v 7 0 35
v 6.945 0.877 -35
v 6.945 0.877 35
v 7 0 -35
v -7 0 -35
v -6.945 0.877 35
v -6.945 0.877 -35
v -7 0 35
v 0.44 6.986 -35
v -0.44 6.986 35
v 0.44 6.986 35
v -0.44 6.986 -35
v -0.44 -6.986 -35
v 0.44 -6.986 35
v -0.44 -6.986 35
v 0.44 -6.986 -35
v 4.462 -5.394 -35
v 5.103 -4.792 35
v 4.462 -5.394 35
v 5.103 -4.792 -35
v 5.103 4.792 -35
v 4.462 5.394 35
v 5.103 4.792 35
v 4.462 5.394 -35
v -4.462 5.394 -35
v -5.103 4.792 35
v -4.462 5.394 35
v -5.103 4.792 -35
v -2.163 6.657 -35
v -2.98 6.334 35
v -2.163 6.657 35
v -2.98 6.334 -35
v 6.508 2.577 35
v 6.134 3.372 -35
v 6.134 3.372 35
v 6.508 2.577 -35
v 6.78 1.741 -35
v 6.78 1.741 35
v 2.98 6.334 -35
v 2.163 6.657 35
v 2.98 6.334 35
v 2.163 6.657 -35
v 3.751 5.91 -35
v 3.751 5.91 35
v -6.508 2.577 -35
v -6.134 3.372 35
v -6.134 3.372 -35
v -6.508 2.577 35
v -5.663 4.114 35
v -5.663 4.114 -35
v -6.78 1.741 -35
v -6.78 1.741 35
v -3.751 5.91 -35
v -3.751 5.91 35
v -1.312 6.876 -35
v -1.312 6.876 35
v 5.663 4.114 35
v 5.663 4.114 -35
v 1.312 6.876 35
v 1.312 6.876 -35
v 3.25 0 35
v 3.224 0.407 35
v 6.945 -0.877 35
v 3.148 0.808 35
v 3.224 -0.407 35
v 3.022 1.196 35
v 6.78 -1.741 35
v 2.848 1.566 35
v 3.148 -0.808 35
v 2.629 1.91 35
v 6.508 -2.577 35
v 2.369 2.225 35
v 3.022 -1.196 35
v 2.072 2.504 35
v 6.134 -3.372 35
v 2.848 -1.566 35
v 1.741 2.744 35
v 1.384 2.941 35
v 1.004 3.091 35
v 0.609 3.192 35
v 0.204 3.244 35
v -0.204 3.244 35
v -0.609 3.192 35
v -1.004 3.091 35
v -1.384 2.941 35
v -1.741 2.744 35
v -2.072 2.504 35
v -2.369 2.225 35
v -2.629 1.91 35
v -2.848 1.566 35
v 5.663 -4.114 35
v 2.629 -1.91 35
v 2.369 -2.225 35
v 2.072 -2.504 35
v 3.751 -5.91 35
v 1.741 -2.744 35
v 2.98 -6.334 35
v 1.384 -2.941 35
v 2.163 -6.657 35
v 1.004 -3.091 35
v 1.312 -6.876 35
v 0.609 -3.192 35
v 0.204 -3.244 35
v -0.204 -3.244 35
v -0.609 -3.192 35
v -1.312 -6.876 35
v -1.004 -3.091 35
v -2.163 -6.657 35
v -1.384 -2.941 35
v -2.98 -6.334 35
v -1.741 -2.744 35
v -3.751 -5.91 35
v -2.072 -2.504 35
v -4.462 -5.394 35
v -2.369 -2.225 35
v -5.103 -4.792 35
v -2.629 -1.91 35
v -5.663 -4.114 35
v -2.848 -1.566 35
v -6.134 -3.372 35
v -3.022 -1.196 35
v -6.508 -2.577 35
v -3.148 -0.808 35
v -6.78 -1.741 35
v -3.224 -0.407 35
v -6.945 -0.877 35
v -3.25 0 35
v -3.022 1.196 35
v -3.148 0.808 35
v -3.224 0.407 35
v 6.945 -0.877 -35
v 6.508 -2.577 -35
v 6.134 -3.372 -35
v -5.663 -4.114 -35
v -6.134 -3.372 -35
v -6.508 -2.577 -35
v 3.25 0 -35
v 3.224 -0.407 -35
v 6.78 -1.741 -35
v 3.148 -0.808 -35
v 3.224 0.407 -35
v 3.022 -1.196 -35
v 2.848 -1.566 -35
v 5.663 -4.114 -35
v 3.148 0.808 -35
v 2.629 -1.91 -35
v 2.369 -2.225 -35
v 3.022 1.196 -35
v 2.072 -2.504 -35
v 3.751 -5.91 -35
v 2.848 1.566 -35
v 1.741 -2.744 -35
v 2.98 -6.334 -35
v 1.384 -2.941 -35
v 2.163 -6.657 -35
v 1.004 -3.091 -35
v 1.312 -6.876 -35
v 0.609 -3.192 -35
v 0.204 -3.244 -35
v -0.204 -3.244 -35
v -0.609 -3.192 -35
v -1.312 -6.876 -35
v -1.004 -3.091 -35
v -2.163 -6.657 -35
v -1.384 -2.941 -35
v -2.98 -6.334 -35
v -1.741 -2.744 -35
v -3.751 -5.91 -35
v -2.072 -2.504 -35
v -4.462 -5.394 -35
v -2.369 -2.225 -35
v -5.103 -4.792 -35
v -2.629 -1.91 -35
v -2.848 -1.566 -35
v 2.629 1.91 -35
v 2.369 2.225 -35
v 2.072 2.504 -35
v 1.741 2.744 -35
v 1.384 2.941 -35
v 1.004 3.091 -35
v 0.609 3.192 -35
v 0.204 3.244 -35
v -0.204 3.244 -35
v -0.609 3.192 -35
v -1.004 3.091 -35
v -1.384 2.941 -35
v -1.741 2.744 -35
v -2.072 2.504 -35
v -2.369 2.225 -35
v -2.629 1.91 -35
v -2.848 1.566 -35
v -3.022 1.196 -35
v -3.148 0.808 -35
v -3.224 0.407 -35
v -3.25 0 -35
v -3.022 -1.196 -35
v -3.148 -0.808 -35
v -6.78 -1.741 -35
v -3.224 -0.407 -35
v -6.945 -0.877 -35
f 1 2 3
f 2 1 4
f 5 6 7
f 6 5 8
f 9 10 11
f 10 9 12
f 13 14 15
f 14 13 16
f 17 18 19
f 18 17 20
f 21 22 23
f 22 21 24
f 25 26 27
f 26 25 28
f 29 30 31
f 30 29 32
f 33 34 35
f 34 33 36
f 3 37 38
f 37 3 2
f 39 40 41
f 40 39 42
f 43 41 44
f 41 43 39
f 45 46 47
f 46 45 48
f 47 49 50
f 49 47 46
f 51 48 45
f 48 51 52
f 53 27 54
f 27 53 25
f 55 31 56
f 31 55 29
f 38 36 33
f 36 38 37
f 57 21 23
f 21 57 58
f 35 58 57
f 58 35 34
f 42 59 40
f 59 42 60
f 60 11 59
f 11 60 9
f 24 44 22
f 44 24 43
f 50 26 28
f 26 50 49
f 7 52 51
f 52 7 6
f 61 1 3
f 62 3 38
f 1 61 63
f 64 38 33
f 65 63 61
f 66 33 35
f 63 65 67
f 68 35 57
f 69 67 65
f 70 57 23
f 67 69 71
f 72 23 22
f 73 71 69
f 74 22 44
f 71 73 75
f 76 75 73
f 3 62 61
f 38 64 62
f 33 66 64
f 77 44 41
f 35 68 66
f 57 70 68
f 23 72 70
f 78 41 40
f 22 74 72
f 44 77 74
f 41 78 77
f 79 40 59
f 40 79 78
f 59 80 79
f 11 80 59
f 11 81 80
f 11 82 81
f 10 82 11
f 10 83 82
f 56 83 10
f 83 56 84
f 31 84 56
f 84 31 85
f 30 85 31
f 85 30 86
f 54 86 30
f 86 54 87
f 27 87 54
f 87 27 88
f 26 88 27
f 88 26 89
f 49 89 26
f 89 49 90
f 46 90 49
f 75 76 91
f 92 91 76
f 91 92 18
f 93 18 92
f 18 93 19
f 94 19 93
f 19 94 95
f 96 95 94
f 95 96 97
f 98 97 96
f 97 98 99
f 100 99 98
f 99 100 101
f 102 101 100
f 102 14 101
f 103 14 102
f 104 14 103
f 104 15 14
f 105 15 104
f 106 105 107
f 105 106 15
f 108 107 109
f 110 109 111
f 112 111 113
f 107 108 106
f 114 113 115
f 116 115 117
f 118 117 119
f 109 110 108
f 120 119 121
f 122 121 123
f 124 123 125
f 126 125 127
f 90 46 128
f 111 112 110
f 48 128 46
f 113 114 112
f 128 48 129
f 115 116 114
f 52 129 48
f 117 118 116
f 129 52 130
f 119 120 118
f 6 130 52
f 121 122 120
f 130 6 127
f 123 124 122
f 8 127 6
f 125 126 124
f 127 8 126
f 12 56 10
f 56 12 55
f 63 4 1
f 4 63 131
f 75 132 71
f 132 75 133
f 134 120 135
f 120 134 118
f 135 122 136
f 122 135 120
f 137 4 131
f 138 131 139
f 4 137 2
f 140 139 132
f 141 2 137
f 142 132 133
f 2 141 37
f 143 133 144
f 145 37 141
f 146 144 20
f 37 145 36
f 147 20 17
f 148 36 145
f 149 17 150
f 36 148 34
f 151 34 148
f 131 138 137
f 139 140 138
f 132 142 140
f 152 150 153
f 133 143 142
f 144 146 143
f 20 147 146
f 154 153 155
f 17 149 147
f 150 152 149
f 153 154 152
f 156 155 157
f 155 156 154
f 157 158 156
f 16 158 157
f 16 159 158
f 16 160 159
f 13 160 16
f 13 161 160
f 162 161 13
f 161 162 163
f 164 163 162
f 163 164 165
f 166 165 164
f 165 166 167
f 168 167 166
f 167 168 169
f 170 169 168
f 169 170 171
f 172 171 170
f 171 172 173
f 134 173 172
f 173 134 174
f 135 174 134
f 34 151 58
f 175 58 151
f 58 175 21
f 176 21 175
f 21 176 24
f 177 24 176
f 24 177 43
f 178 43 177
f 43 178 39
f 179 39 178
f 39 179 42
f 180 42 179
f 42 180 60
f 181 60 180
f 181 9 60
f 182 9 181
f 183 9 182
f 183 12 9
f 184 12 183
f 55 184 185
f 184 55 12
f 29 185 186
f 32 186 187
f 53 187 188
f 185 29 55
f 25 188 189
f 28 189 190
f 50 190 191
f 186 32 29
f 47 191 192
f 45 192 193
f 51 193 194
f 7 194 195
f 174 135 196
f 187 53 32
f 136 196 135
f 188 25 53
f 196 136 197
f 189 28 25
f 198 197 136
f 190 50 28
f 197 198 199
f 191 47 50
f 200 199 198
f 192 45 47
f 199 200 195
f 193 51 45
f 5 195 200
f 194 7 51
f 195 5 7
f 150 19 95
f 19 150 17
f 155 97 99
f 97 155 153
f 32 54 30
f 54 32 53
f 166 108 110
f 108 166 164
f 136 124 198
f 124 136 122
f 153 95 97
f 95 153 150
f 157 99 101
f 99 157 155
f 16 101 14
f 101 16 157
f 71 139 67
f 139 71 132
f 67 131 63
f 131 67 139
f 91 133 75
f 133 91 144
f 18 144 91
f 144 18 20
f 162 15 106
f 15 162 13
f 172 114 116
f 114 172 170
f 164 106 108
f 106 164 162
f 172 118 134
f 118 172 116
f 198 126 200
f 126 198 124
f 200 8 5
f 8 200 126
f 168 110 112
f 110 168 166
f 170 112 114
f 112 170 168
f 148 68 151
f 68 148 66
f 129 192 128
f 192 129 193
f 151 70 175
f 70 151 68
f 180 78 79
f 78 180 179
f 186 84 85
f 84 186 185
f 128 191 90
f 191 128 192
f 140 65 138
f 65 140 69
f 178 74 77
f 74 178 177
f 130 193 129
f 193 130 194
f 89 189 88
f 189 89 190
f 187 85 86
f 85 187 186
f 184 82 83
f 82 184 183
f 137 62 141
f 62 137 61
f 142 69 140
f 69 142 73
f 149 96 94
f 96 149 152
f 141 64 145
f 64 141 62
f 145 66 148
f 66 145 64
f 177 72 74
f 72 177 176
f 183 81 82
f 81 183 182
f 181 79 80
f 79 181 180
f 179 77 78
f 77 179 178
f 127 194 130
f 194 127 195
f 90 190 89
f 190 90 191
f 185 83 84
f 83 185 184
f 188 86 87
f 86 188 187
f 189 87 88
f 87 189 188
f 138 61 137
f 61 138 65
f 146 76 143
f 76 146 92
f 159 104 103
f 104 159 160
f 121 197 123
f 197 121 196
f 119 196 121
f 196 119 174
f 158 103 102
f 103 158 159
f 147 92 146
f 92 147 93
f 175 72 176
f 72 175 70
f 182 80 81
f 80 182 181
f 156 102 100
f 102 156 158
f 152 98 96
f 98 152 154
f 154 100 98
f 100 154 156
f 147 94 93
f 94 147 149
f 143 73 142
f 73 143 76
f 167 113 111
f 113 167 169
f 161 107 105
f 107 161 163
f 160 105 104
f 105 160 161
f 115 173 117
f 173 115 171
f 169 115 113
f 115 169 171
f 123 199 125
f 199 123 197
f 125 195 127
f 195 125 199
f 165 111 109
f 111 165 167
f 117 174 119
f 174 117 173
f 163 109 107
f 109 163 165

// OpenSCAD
$fn = 50;


difference() {
	union() {
		translate(v = [0, 0, -35.0000000000]) {
			cylinder(h = 70, r = 7.0000000000);
		}
	}
	union() {
		translate(v = [0, 0, -100.0000000000]) {
			cylinder(h = 200, r = 3.2500000000);
		}
	}
}
